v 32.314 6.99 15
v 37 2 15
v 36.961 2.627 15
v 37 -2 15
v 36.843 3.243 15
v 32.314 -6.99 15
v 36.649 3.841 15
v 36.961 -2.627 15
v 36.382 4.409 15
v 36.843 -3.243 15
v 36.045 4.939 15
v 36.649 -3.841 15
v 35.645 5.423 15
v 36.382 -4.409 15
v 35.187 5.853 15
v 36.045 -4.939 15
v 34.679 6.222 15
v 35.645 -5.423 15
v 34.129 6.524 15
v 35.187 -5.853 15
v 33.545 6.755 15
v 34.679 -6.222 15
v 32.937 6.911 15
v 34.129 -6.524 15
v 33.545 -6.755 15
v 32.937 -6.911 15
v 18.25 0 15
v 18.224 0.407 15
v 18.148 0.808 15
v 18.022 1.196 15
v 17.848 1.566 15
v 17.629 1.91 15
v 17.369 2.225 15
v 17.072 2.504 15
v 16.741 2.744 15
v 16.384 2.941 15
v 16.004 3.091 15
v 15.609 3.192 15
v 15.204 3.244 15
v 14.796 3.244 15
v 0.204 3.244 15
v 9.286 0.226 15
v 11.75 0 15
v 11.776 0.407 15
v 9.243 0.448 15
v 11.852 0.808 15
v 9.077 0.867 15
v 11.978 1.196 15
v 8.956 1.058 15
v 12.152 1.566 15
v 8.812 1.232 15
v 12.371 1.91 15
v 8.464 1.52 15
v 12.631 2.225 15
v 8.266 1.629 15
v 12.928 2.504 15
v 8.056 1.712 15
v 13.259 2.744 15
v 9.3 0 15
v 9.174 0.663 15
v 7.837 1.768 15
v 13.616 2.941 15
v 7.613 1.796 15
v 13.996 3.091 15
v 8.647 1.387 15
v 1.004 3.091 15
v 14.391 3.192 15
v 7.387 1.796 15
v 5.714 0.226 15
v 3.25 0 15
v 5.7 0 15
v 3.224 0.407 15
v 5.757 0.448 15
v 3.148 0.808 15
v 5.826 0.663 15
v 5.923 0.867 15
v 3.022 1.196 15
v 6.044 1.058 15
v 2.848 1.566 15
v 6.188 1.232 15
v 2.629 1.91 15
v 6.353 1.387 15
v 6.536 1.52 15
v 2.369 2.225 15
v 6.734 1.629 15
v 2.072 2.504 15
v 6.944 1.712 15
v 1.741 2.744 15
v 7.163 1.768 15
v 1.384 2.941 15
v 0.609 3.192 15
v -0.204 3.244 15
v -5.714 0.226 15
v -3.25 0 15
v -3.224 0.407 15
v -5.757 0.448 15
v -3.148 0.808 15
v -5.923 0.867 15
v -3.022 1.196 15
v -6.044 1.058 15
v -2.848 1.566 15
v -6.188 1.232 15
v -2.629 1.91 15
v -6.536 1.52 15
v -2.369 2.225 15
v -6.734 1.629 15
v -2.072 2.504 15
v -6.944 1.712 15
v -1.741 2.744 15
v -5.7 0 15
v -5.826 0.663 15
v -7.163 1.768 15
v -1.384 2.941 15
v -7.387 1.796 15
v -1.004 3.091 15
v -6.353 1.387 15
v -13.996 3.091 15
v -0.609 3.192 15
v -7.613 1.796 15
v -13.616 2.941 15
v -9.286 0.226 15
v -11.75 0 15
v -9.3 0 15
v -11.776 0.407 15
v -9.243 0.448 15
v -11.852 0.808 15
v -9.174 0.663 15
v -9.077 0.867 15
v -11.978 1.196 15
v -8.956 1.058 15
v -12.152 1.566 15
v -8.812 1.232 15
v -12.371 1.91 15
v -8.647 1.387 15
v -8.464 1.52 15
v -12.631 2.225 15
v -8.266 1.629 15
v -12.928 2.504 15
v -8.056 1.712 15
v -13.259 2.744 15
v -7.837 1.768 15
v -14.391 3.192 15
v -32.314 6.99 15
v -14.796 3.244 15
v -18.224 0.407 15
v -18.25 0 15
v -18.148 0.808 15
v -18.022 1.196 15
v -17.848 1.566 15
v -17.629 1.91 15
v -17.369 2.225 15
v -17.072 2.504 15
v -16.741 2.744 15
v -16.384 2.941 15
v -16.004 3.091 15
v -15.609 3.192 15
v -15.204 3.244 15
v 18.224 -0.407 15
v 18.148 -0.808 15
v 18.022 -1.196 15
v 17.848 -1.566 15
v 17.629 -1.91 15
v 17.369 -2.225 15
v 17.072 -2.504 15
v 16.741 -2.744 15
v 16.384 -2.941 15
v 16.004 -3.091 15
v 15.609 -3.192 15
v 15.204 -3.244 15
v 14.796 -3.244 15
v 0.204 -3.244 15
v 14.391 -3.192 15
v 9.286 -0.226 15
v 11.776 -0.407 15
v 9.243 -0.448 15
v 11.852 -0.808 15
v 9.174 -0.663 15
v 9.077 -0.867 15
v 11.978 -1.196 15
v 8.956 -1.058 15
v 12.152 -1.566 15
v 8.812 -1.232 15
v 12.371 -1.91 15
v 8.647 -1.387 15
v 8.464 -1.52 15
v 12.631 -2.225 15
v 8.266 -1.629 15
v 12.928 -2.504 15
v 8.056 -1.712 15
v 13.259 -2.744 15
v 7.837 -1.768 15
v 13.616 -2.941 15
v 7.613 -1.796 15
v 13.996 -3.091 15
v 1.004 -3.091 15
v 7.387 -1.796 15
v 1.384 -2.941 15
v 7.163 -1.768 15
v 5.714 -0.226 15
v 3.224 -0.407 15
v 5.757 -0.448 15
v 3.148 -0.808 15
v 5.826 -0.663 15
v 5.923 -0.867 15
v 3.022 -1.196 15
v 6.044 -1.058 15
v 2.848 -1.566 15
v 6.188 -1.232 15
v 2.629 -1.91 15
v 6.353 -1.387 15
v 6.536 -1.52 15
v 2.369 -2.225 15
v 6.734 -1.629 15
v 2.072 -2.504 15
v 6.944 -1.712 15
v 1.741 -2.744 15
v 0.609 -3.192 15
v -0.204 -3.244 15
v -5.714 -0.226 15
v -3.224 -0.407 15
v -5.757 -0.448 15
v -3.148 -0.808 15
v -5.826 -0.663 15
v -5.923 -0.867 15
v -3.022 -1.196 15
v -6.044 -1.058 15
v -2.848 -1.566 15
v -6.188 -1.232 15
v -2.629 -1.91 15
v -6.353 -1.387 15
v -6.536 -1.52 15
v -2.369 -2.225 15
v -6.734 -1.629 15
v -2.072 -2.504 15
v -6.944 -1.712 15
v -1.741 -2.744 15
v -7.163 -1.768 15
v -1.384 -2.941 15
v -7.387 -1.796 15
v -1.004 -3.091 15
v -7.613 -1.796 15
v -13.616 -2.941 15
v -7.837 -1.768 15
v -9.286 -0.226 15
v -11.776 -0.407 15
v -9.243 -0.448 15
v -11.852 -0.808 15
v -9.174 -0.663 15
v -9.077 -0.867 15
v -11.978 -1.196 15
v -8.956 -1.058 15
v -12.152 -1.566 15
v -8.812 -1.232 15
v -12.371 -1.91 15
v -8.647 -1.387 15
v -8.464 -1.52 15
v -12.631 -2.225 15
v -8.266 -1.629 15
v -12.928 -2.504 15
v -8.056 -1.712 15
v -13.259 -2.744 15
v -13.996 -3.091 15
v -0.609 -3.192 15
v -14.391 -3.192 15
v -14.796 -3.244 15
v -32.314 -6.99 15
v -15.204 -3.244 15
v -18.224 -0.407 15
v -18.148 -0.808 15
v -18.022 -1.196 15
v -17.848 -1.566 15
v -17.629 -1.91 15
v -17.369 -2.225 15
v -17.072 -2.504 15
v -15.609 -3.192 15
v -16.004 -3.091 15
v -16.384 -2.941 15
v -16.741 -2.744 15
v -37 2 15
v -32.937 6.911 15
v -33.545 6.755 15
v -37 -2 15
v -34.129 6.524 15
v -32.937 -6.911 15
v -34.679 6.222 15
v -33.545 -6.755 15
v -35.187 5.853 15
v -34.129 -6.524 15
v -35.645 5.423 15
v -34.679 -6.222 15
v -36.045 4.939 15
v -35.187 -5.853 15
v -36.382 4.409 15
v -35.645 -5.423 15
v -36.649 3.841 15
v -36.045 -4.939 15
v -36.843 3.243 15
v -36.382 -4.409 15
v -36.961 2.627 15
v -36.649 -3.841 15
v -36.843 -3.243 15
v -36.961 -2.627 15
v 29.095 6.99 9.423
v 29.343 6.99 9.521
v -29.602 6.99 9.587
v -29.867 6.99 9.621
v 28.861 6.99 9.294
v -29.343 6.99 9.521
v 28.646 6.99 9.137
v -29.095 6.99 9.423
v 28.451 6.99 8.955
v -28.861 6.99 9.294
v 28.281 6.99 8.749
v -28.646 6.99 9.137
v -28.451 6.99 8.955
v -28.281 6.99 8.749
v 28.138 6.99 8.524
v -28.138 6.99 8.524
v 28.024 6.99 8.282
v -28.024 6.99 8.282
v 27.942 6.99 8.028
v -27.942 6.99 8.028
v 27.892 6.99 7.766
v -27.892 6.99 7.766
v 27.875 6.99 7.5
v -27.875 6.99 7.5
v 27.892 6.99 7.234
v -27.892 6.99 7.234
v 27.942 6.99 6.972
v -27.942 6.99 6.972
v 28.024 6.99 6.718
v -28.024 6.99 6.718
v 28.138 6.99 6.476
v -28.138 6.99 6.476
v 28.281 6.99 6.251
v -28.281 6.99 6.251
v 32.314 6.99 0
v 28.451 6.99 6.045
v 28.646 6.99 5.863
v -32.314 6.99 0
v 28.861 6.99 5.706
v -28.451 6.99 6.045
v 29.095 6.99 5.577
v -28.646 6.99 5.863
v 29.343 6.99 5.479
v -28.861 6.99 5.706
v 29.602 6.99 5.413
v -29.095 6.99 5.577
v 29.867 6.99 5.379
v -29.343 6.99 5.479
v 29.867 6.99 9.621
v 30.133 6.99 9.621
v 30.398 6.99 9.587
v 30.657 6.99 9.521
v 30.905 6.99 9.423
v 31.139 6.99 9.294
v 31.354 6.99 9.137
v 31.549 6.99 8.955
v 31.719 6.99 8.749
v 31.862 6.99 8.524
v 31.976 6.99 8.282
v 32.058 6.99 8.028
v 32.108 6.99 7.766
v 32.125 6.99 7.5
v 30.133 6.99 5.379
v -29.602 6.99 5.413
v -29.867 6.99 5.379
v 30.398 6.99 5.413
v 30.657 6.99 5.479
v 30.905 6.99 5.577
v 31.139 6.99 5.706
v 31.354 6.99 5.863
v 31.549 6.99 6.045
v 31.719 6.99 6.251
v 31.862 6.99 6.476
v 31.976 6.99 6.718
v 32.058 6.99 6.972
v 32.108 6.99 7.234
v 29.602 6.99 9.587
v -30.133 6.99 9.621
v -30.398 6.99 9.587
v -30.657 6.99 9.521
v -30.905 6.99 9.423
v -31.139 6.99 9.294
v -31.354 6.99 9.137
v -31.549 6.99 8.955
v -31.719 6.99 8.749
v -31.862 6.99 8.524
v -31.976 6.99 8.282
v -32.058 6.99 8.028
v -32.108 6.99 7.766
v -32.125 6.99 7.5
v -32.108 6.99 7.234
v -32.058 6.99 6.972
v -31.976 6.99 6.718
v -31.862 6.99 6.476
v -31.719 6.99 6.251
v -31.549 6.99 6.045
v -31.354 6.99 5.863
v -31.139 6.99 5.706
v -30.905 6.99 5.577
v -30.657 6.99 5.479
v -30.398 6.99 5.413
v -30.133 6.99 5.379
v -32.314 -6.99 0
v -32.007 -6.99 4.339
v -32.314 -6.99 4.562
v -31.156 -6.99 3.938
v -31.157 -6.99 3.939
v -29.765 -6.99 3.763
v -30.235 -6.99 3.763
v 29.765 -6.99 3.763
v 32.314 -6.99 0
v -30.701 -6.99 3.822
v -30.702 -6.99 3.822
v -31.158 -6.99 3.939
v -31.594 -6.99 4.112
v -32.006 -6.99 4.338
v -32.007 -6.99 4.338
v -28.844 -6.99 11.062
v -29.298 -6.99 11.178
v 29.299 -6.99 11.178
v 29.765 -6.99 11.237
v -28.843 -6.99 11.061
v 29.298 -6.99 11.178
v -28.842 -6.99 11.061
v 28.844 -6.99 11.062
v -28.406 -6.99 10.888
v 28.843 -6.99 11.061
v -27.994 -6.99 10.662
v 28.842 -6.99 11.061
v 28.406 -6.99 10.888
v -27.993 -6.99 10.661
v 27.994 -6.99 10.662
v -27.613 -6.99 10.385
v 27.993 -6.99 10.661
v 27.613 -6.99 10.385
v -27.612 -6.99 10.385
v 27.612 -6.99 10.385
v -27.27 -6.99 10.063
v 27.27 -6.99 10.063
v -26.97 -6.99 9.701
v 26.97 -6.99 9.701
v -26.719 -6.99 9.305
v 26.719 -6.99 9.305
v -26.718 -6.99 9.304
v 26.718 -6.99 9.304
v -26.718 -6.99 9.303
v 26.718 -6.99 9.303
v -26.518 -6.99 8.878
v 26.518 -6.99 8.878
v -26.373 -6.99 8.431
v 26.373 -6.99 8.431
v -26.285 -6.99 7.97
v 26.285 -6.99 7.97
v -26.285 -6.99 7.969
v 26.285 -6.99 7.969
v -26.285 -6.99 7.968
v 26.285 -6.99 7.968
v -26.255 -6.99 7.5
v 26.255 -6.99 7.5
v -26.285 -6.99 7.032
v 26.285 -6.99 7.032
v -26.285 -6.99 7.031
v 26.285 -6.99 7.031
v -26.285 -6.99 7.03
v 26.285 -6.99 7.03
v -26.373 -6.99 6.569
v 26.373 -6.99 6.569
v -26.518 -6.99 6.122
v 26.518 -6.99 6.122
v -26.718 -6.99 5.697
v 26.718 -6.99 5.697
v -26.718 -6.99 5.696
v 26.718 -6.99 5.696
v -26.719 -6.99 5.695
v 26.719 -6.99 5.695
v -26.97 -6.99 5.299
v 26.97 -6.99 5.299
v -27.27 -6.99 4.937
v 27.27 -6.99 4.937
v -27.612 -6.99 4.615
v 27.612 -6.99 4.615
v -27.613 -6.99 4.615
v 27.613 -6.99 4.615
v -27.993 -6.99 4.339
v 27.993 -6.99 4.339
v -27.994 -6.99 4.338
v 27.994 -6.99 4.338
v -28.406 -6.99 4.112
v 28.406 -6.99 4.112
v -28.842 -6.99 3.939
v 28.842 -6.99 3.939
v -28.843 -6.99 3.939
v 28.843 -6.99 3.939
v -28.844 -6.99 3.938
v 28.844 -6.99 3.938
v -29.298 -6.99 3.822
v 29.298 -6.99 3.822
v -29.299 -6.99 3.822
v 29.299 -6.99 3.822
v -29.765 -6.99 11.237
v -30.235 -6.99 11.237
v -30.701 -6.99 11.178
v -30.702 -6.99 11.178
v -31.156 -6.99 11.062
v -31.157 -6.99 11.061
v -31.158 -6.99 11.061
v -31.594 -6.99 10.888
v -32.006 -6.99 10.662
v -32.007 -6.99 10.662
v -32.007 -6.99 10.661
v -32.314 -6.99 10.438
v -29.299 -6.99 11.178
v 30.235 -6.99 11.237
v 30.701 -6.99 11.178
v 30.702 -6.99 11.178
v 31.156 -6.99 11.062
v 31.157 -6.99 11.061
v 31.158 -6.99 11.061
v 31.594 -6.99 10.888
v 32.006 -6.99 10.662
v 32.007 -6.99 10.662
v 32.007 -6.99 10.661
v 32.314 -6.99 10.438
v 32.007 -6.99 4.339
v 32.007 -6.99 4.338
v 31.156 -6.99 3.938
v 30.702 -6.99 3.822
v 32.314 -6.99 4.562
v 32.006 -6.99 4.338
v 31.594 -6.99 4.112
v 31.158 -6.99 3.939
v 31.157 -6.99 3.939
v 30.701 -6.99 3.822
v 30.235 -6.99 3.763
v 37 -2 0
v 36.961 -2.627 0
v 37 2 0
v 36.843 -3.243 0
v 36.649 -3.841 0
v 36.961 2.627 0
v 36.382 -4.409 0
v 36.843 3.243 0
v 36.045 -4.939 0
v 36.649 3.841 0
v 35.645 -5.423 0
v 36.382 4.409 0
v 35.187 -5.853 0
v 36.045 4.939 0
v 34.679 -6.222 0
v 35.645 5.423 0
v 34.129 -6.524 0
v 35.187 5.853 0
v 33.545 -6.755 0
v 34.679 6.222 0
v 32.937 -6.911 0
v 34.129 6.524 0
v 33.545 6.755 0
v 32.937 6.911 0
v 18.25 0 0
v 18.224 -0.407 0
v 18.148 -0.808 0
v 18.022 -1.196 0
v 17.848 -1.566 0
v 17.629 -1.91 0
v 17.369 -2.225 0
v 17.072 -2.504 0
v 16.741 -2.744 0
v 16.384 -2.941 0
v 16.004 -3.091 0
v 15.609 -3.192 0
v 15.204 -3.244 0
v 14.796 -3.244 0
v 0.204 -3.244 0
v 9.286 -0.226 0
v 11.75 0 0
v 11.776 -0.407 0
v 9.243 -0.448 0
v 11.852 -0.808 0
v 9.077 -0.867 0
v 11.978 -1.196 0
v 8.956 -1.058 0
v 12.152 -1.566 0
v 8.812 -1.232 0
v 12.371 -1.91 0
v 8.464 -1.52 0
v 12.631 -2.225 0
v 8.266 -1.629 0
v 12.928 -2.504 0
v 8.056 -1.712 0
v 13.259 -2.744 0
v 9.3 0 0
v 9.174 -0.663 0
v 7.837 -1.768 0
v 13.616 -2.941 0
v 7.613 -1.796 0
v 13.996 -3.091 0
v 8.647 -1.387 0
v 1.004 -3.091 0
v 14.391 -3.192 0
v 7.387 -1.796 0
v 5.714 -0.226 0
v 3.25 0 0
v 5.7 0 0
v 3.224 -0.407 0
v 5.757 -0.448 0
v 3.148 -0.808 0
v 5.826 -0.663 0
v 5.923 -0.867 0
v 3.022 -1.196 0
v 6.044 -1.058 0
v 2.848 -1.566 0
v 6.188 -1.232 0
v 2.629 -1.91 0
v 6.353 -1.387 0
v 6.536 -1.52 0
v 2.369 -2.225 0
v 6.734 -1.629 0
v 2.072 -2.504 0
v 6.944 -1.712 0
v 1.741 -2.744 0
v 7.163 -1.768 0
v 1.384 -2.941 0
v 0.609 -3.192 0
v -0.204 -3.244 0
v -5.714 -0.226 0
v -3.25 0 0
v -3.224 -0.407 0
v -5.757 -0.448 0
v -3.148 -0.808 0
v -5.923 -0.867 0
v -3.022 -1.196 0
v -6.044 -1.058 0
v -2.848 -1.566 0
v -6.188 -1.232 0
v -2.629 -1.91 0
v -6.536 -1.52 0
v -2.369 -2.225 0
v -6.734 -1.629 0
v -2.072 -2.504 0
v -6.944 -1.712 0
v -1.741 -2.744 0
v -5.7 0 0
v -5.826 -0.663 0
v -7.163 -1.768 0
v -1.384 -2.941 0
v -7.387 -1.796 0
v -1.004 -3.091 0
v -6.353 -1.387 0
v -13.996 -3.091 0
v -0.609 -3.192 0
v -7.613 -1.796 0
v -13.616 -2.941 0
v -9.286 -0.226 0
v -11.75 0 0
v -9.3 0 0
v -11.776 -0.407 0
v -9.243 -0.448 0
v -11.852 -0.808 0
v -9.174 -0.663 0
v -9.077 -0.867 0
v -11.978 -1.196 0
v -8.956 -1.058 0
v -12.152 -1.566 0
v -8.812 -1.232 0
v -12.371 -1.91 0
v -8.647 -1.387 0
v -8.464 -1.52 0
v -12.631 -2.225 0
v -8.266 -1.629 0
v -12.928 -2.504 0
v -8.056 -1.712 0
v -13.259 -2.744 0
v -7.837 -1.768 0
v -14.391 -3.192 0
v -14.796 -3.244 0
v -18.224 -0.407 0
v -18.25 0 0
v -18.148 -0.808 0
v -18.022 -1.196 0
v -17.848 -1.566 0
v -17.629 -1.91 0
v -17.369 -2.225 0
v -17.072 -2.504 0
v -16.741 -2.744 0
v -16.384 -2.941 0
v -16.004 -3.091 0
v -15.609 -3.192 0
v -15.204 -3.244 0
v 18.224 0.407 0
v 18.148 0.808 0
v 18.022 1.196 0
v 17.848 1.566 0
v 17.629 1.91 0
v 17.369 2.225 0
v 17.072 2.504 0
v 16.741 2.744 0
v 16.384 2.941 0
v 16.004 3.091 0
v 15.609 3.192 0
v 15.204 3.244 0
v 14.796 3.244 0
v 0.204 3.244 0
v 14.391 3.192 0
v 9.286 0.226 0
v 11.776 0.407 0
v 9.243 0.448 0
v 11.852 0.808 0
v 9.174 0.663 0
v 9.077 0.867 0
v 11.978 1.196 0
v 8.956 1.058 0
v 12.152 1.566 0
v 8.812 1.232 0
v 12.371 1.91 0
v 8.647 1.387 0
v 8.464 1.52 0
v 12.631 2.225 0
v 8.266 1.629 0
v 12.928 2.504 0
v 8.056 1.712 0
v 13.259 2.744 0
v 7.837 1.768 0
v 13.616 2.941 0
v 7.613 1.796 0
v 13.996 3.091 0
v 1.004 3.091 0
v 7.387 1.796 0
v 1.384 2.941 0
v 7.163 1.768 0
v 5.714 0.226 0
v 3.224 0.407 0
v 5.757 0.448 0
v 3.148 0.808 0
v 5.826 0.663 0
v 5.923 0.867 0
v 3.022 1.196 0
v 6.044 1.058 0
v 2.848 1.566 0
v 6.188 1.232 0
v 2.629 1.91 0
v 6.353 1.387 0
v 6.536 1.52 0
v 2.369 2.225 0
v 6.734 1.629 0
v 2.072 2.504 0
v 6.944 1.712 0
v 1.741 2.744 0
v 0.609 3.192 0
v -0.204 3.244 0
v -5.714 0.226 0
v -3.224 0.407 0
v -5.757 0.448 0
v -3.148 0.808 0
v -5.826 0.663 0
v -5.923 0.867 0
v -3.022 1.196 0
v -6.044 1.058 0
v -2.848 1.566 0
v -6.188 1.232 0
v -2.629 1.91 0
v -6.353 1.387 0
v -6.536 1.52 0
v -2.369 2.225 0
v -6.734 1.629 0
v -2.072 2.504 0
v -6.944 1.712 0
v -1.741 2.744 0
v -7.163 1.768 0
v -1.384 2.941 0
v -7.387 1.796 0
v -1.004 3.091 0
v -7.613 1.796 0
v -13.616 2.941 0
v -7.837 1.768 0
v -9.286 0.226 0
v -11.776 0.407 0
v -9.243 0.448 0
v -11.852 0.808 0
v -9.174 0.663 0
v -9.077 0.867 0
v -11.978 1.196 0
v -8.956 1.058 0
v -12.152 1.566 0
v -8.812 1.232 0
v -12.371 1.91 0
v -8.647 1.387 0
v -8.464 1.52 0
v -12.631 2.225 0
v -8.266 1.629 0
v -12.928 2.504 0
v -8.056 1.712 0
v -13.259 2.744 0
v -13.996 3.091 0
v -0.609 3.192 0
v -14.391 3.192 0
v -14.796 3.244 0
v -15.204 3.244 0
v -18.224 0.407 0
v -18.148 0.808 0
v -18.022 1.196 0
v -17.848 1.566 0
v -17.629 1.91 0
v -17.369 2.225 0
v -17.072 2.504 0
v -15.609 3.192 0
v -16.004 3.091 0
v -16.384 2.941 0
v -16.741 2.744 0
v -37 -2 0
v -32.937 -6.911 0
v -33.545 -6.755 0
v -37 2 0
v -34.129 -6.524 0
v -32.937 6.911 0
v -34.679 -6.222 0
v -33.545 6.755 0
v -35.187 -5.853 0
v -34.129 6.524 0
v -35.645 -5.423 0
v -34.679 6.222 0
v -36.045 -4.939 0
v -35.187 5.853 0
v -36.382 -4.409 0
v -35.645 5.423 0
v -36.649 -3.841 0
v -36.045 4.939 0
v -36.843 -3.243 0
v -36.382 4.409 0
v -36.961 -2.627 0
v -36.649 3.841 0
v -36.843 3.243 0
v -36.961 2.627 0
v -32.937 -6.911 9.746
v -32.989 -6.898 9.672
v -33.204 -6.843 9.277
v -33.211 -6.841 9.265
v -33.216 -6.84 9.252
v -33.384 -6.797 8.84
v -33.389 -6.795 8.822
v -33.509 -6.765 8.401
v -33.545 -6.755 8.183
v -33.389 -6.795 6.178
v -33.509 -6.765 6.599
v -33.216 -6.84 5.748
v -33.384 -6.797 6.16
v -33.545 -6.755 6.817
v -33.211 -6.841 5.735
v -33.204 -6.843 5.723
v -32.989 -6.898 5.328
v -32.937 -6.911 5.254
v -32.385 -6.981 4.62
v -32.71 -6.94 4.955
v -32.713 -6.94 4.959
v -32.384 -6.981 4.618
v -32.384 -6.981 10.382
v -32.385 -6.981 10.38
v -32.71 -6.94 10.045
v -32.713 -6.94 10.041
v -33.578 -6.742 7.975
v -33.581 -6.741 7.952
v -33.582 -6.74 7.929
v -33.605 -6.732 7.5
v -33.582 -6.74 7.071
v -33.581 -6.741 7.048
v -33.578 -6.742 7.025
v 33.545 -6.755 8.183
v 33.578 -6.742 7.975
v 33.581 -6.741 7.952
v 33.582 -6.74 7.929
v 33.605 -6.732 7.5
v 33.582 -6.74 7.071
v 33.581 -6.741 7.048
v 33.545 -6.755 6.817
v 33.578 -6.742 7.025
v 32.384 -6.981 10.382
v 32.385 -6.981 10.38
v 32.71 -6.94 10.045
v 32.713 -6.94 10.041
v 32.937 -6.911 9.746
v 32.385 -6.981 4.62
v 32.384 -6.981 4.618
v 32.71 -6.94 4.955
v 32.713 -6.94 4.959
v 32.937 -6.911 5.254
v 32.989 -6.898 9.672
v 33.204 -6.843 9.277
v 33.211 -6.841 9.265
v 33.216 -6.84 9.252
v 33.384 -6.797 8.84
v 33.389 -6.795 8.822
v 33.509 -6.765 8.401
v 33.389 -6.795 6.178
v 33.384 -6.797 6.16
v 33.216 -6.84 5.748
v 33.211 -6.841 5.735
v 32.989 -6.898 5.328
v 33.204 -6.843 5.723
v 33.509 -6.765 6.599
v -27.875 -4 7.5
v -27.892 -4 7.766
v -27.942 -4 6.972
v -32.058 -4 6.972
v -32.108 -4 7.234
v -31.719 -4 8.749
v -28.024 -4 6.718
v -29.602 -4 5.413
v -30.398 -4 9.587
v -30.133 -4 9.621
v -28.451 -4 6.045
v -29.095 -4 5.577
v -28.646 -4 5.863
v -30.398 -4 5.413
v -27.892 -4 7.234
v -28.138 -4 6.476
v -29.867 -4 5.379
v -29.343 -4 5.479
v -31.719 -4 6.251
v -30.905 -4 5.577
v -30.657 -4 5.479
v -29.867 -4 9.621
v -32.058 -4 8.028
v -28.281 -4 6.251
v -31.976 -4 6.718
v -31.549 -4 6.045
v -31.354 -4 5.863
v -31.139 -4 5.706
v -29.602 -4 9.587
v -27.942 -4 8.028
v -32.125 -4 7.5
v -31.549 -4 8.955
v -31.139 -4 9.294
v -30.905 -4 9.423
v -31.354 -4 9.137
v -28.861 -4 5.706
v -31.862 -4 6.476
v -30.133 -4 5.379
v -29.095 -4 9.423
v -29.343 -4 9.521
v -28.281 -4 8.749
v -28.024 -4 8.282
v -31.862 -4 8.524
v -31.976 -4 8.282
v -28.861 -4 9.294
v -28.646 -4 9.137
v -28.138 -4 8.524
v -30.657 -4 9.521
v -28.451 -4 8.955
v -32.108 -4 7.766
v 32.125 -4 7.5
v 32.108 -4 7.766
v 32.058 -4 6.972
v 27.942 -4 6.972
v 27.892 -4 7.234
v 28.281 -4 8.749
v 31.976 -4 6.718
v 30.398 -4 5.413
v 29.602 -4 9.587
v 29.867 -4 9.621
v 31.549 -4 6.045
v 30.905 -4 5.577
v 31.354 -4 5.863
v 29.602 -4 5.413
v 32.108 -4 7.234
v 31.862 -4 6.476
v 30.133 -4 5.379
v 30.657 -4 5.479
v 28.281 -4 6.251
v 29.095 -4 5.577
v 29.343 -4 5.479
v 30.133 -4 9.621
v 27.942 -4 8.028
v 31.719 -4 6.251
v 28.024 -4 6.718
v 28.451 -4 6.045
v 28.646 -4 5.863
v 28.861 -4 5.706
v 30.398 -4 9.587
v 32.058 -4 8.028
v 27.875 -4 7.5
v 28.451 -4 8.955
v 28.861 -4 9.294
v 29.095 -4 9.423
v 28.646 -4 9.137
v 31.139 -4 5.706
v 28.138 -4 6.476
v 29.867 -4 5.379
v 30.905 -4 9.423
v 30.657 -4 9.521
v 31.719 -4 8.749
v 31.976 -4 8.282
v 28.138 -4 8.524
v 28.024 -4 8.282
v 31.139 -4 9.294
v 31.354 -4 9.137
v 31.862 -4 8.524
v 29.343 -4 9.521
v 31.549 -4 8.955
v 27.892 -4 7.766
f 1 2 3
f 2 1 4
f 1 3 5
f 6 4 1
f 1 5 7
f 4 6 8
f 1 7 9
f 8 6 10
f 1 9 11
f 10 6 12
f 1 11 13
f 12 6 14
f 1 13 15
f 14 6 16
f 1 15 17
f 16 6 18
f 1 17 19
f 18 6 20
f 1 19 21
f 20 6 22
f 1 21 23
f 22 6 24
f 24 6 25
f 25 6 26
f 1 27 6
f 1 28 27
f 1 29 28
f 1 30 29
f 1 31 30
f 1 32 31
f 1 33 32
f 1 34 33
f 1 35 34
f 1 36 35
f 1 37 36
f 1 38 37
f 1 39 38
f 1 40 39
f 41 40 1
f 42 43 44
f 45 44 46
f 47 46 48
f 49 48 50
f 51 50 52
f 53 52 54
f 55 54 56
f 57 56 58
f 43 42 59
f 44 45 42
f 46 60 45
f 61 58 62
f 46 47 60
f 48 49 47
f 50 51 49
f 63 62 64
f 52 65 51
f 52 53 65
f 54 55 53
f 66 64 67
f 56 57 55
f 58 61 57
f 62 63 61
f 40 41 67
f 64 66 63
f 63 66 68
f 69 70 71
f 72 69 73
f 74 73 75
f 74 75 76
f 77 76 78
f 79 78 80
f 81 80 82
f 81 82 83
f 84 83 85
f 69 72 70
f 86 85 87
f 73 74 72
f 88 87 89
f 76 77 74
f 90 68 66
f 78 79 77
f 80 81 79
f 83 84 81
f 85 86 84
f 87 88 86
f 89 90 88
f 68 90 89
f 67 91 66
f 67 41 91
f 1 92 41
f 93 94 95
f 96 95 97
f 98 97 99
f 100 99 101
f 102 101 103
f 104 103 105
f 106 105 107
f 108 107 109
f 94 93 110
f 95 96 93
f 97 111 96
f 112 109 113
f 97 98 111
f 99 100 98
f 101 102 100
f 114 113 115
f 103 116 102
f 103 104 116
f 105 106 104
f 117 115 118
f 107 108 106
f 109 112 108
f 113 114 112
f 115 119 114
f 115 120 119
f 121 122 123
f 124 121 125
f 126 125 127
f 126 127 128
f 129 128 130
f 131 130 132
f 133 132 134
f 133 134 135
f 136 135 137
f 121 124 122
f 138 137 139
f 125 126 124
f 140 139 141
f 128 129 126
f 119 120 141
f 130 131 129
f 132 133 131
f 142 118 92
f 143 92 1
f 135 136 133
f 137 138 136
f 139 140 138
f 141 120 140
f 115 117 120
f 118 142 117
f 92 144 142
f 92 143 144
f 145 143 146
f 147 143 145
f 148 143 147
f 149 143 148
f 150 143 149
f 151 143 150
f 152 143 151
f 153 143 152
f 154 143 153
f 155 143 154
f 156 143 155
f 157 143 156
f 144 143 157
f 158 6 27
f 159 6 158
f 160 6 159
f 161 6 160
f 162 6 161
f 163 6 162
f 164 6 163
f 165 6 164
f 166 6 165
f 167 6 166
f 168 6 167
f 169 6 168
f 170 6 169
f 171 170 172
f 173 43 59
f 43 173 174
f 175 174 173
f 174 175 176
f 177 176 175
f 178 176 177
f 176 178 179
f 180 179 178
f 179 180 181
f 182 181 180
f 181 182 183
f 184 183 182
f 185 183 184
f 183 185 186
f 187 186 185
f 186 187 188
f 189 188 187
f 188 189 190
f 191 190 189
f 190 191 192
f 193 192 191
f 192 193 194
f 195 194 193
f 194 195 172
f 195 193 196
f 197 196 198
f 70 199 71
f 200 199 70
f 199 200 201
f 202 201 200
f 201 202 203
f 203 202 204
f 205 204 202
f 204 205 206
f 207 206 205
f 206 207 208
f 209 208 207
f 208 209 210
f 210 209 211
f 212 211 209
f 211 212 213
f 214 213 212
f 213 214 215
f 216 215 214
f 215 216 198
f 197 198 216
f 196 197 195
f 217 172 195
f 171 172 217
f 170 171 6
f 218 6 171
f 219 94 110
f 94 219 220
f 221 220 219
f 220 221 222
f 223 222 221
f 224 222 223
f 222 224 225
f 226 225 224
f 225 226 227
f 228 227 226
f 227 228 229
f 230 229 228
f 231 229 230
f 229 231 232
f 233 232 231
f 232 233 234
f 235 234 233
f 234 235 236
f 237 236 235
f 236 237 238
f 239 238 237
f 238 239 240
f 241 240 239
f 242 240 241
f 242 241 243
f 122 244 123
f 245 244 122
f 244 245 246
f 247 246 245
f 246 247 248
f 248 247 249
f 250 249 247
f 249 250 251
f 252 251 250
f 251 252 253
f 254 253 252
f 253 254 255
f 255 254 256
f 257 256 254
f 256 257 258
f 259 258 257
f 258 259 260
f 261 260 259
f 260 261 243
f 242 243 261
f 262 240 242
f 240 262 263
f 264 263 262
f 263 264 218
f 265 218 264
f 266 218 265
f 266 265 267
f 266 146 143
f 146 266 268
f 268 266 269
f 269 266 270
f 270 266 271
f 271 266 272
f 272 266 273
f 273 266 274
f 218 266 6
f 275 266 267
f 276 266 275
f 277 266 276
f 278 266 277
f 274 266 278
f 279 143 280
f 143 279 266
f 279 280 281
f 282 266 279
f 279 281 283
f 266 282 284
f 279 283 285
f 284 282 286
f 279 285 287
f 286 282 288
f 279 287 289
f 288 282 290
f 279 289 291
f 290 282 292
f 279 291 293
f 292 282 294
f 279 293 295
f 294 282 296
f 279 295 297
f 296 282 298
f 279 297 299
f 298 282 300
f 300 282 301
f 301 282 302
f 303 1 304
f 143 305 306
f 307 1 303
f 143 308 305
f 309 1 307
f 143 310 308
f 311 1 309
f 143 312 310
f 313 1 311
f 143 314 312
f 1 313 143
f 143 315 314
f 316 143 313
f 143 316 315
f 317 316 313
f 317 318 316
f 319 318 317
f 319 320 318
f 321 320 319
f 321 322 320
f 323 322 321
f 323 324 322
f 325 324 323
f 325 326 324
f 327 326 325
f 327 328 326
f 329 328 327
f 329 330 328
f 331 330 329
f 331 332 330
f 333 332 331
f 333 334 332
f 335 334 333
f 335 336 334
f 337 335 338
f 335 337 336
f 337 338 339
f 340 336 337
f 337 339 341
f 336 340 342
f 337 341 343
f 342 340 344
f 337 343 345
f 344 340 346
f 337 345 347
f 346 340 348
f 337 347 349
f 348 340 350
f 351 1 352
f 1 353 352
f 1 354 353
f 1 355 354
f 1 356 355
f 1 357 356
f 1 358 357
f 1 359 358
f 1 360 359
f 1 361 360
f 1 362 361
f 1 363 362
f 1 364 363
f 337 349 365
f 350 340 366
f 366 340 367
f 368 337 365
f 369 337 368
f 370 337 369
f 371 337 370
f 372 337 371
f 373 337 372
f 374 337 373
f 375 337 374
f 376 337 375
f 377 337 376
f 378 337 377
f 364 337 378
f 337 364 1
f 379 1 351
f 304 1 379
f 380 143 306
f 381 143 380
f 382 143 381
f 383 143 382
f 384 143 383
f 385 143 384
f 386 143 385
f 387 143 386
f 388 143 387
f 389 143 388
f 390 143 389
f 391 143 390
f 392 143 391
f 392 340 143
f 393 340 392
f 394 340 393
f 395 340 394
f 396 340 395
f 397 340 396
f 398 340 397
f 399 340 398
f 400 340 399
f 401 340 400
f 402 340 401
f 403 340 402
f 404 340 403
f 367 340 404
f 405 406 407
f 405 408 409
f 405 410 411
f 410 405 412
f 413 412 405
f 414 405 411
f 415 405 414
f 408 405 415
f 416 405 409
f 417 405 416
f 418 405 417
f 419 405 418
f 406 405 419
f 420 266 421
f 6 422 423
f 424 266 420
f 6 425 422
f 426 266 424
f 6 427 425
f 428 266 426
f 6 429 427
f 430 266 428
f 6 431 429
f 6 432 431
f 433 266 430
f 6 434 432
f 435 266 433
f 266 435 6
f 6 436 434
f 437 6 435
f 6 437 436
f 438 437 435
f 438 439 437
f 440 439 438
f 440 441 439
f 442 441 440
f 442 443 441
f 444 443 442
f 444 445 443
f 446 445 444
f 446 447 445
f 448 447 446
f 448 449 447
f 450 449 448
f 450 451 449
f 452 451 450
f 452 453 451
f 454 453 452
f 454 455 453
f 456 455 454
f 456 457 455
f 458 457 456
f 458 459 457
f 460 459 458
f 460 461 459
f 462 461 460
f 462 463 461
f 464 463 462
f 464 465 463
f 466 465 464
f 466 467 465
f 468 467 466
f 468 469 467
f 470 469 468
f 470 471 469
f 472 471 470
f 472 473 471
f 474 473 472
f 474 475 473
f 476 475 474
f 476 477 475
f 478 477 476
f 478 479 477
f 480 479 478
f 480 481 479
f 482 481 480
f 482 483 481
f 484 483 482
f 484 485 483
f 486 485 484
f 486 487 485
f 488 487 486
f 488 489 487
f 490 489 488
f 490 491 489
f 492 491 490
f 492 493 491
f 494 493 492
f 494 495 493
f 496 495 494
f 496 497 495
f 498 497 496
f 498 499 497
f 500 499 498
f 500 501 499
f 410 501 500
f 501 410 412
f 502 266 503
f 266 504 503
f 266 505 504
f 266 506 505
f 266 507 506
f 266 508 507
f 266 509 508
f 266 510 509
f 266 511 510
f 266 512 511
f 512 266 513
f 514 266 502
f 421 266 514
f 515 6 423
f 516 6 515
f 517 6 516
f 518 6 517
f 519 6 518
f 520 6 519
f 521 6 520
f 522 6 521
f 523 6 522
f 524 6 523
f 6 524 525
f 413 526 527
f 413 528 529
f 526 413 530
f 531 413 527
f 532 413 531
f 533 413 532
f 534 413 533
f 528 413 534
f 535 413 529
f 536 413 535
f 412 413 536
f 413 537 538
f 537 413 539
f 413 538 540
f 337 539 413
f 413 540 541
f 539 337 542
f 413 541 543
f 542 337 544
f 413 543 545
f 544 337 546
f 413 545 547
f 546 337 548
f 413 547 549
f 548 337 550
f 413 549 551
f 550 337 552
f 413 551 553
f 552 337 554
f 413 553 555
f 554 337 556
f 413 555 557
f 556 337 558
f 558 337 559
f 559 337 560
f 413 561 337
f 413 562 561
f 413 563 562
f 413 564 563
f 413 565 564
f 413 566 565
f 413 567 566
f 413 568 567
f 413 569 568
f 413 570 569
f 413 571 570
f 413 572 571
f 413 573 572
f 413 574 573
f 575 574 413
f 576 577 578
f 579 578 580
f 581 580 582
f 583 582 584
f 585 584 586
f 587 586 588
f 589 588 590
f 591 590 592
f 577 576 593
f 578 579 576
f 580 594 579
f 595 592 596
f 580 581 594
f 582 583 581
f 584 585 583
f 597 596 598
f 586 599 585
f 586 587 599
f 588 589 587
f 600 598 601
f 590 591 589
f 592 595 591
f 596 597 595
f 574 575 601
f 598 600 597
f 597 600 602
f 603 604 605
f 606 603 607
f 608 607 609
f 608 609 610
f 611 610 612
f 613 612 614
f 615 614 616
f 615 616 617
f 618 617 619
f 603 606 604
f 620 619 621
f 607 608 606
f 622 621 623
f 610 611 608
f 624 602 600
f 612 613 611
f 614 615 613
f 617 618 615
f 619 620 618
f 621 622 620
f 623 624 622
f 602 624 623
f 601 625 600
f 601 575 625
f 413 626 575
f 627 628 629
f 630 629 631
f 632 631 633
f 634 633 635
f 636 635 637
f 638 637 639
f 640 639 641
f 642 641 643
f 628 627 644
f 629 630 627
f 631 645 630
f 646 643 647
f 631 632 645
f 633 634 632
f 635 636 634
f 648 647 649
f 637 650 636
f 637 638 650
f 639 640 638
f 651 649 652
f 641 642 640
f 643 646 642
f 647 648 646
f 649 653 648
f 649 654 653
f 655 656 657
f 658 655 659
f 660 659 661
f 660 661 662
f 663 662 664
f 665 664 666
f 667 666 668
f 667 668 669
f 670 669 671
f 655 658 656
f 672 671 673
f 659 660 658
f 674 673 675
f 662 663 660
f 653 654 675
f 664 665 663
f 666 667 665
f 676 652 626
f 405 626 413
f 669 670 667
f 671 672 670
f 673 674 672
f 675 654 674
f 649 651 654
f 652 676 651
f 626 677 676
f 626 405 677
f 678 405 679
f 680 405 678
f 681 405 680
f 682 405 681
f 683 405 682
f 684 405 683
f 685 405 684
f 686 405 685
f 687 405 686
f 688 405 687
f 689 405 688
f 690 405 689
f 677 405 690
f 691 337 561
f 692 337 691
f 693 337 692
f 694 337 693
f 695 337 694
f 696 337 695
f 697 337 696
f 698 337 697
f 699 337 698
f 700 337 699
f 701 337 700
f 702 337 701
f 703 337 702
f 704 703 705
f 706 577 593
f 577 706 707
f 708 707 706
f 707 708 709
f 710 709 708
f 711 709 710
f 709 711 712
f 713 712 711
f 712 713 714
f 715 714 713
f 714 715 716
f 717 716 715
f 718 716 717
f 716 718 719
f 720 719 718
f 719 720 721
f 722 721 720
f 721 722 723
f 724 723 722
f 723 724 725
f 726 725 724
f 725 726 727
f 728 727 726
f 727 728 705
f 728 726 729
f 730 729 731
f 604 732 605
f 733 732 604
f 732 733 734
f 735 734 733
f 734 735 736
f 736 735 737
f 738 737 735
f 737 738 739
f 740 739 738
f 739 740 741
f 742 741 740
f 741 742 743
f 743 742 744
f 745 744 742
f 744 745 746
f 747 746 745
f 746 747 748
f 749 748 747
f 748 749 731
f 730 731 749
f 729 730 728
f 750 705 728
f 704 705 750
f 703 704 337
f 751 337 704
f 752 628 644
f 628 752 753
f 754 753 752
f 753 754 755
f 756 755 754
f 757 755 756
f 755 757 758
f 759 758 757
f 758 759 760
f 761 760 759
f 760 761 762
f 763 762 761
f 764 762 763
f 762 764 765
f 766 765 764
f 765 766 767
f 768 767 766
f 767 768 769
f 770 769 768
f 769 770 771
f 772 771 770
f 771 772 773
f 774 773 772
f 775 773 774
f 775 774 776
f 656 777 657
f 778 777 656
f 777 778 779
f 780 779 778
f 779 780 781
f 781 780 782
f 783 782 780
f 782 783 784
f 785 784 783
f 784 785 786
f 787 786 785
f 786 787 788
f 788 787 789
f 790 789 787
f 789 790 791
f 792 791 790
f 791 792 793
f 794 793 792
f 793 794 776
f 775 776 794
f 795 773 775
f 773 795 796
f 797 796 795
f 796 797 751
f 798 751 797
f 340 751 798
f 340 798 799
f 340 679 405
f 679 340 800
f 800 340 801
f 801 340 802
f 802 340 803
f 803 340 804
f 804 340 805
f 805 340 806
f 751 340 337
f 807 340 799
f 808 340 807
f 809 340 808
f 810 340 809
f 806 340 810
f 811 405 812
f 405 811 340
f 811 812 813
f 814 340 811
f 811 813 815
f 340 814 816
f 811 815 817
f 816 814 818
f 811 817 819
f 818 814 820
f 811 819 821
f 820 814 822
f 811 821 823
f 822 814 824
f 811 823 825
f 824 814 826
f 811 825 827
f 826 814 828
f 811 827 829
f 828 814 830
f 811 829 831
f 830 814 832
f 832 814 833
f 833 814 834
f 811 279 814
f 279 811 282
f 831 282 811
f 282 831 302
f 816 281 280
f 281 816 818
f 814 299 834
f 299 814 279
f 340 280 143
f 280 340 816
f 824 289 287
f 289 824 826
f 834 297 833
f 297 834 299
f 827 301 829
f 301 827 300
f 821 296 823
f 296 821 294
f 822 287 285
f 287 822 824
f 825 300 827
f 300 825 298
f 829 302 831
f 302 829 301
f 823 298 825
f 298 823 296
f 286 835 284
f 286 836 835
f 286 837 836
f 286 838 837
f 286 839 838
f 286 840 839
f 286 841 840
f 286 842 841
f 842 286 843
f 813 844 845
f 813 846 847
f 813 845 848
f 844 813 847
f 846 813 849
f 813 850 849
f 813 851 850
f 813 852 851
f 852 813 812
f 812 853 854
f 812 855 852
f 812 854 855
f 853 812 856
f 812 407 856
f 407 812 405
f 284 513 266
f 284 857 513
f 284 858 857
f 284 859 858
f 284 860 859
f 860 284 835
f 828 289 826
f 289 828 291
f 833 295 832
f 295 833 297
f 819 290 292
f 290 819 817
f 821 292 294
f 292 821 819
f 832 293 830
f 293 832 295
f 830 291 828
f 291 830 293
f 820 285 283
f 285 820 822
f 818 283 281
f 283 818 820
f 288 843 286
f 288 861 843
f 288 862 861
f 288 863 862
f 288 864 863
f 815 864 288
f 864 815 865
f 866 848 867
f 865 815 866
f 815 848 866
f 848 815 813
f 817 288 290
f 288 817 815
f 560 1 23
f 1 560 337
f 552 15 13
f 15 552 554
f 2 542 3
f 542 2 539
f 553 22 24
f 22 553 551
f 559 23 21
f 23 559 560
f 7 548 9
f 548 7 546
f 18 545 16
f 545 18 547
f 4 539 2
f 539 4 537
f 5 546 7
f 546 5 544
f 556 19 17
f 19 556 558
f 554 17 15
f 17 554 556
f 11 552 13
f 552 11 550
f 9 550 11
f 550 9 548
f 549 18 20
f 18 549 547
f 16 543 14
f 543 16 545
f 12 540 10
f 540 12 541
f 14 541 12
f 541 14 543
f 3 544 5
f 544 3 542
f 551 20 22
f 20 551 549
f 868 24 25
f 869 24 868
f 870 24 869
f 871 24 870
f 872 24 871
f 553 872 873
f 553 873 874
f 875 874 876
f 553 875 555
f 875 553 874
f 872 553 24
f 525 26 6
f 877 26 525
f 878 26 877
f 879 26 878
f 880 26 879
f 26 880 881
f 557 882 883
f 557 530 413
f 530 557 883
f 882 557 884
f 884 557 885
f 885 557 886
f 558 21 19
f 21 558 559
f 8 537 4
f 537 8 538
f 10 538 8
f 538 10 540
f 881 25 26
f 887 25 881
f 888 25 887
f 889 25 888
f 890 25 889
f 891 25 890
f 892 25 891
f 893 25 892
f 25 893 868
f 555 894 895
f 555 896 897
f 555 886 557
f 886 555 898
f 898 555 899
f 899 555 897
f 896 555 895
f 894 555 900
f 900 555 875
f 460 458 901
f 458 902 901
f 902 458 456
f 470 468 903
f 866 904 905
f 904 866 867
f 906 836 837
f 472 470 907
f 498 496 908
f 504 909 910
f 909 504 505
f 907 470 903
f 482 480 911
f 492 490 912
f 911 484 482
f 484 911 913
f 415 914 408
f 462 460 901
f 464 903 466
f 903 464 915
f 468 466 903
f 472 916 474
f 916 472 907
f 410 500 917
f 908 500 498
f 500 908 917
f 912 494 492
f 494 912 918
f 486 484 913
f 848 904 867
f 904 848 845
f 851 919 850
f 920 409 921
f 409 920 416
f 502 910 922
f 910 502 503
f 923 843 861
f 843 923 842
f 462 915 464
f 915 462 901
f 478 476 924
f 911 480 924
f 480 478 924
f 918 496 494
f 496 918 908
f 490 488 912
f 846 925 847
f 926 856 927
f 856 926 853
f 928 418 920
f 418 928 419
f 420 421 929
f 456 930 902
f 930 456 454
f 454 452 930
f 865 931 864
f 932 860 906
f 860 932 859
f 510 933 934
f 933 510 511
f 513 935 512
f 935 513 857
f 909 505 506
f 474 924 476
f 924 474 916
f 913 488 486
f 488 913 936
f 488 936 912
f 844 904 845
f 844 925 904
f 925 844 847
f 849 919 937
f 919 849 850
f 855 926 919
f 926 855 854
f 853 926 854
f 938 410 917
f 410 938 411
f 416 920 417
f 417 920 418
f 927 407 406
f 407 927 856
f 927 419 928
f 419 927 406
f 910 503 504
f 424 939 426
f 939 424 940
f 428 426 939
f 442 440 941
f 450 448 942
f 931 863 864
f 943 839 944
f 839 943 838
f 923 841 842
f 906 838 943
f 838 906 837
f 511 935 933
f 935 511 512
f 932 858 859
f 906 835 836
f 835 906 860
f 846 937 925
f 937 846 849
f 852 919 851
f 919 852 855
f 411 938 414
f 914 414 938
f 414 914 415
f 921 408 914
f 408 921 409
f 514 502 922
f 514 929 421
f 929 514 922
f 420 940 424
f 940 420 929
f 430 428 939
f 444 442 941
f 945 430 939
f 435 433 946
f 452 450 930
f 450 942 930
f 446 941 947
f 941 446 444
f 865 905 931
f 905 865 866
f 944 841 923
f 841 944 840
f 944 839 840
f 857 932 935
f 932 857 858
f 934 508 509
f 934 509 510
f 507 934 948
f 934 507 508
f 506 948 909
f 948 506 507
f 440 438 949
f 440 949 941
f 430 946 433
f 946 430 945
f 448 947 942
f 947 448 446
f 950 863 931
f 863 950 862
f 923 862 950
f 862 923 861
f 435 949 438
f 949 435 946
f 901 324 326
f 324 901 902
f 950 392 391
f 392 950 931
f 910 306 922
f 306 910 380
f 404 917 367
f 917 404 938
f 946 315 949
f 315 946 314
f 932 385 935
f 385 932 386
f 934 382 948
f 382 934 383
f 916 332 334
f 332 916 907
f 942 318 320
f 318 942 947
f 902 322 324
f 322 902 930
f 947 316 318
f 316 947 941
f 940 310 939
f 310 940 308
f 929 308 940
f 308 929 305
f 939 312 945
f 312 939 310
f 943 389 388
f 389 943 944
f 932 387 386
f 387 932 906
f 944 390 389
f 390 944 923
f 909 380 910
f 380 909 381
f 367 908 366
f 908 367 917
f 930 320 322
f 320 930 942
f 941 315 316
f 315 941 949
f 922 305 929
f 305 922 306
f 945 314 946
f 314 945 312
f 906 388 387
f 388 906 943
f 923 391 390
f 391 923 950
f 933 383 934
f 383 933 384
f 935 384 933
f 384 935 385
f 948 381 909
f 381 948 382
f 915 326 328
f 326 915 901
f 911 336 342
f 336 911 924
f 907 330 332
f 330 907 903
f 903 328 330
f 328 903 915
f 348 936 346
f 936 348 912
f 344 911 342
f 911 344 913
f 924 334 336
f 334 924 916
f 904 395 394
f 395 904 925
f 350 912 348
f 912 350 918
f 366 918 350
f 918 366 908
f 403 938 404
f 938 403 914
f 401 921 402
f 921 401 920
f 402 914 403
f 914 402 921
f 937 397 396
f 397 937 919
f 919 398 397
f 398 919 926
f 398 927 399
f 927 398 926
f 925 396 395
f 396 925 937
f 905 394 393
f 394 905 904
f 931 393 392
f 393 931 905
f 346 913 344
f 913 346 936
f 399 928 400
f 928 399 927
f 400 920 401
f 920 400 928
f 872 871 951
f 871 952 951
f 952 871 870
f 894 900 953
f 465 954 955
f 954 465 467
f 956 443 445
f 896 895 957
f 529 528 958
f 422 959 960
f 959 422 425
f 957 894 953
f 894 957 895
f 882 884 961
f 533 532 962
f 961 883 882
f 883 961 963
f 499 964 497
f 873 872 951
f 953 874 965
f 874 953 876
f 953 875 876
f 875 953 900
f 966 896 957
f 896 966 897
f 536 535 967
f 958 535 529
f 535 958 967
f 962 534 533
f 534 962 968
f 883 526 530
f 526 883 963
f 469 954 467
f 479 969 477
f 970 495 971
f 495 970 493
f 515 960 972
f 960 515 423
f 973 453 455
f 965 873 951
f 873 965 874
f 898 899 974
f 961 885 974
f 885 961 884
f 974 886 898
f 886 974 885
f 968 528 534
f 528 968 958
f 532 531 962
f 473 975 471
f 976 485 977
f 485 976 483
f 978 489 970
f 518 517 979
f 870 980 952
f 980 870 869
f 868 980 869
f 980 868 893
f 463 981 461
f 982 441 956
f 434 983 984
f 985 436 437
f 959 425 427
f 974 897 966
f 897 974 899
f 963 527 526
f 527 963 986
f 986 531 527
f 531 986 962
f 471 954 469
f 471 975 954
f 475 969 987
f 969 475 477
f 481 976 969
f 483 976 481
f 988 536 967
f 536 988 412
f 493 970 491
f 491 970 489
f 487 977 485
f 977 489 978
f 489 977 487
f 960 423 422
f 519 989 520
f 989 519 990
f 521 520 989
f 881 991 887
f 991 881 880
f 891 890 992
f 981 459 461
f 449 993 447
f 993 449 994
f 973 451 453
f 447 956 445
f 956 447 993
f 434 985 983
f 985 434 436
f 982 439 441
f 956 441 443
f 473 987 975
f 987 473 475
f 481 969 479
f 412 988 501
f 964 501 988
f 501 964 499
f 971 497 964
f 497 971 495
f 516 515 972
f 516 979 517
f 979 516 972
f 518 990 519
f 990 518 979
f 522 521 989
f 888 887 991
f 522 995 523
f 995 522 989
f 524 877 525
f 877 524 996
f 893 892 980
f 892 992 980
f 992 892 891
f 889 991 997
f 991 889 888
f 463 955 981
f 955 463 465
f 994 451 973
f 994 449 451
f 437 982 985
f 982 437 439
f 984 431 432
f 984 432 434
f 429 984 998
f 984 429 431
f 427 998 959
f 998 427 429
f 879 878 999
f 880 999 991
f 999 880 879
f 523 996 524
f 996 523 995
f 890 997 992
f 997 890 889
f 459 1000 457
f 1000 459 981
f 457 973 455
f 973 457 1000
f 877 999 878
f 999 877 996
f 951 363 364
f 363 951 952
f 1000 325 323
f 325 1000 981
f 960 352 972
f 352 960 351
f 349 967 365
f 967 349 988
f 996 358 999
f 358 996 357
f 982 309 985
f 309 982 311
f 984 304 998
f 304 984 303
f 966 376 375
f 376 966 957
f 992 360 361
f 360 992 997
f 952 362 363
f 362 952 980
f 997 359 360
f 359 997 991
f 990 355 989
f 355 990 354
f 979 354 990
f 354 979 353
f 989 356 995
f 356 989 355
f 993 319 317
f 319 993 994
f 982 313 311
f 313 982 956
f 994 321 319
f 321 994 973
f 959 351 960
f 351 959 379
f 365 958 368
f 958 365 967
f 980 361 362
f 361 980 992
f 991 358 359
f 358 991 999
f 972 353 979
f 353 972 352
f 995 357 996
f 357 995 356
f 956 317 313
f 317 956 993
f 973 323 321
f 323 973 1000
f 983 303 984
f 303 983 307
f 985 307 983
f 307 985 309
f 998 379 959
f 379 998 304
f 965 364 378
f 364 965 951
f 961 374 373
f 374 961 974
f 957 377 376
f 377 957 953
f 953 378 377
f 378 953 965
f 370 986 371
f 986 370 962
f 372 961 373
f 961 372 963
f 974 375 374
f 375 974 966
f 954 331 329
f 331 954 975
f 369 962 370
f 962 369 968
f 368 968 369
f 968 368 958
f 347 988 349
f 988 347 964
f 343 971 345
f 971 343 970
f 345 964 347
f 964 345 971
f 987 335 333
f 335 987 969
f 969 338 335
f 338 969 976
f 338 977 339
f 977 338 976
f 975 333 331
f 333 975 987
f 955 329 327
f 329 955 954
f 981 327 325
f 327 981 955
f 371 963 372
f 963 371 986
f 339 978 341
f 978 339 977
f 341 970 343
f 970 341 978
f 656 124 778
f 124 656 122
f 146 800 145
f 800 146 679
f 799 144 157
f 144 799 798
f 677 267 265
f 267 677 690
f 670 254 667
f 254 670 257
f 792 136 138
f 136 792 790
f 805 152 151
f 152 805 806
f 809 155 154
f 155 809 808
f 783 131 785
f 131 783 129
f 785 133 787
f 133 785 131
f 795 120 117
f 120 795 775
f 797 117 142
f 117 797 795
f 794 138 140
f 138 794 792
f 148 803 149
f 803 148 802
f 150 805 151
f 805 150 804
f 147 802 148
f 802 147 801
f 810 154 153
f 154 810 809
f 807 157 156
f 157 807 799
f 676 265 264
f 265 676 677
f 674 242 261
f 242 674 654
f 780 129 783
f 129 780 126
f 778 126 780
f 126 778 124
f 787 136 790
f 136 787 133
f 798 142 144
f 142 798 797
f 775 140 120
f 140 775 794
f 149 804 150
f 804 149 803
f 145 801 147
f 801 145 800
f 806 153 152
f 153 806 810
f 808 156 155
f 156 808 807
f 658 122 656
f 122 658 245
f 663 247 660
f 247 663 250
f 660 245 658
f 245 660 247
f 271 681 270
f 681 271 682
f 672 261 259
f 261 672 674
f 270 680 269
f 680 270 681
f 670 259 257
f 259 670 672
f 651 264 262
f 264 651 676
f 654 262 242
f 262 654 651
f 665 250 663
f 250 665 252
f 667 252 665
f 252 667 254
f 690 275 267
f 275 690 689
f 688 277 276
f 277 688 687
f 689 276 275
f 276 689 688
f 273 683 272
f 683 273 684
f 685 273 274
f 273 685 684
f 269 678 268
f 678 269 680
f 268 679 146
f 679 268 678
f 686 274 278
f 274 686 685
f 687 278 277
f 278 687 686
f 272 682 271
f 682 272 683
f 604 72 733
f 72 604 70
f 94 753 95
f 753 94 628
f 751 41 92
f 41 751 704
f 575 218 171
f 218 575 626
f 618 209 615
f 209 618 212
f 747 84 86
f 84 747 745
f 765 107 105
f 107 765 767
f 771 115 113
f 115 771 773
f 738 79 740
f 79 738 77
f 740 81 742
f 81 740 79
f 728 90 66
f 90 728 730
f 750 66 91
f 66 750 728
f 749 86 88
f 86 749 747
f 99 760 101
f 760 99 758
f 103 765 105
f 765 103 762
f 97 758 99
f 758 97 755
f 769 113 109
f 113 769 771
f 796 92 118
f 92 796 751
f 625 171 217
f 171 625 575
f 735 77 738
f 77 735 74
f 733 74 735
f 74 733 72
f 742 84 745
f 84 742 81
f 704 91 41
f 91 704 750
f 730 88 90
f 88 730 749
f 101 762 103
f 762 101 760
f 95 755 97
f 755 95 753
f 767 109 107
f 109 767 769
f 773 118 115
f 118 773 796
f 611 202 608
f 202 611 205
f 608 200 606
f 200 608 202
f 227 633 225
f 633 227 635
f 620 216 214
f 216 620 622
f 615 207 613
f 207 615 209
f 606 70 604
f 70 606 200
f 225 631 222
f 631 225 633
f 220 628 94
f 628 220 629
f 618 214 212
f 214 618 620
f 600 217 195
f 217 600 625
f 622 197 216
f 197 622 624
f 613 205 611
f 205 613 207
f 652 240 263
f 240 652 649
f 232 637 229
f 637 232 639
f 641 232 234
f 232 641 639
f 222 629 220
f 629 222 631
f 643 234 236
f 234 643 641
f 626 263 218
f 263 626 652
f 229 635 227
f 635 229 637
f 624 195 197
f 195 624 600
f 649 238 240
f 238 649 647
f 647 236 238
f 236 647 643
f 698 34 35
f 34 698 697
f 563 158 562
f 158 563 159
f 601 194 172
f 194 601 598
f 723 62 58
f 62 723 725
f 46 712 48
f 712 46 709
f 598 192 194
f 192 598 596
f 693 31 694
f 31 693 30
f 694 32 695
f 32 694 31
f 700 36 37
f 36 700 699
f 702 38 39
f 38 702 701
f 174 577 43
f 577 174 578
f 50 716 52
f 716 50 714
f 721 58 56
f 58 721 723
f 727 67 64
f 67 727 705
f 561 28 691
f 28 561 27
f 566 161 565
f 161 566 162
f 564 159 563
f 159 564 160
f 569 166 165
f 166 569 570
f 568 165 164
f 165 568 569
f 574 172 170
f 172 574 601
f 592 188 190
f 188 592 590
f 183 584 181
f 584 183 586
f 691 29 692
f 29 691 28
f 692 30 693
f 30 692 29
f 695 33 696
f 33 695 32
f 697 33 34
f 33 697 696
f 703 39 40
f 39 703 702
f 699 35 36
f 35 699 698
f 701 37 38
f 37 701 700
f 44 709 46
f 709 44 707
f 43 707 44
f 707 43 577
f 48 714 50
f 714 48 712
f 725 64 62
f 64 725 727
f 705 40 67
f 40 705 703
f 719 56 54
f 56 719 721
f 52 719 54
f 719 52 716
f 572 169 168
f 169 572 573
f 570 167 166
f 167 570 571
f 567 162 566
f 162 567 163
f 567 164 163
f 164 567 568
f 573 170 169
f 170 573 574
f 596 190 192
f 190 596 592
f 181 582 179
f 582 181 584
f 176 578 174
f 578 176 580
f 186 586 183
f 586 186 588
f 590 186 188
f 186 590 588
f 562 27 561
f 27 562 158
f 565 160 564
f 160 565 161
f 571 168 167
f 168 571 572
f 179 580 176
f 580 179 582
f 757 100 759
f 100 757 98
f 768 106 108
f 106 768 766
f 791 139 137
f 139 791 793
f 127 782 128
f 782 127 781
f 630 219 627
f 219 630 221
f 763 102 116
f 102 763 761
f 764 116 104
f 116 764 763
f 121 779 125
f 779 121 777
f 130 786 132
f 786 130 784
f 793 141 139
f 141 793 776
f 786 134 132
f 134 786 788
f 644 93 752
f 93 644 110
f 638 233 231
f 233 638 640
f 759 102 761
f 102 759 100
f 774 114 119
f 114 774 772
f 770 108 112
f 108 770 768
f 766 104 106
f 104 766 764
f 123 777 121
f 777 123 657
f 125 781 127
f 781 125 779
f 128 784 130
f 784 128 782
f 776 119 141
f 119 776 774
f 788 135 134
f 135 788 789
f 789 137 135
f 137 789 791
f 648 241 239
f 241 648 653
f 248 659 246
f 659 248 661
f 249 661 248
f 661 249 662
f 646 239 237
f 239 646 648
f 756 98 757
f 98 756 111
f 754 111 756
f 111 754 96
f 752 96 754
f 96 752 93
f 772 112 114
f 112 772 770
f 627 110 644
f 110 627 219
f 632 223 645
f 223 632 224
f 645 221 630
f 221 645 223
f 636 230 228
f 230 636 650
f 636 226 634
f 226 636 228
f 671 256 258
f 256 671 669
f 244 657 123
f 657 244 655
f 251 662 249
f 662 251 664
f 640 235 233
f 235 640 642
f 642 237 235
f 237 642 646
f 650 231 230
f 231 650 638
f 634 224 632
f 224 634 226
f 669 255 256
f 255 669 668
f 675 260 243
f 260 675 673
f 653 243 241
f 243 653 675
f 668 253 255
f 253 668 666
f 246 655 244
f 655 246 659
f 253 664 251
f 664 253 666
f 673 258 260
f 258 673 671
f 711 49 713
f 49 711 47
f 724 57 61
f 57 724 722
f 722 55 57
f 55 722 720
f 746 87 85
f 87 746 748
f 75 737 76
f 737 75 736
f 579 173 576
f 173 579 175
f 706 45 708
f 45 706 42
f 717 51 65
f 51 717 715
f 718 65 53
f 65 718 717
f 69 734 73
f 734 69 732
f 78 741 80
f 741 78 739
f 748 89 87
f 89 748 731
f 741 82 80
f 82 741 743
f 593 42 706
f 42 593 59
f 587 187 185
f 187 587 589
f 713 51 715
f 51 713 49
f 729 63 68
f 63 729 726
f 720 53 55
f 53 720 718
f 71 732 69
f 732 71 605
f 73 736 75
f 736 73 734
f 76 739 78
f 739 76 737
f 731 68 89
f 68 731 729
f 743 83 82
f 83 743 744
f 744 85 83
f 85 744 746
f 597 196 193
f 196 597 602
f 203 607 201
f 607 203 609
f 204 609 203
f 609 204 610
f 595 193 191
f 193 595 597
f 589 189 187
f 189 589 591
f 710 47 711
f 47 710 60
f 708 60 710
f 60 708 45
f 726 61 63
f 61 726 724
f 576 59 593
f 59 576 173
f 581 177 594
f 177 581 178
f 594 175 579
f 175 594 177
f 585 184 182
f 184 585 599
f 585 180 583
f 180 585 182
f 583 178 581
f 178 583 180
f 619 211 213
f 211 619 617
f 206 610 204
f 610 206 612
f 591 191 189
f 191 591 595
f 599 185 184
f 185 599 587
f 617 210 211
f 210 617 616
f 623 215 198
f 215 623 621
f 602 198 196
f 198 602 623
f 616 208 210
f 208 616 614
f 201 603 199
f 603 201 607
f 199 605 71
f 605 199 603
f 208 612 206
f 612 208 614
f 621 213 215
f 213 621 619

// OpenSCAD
$fn = 50;


difference() {
	union() {
		hull() {
			translate(v = [-17.0000000000, 2.0000000000, 0]) {
				cylinder(h = 15, r = 5);
			}
			translate(v = [17.0000000000, 2.0000000000, 0]) {
				cylinder(h = 15, r = 5);
			}
			translate(v = [-17.0000000000, -2.0000000000, 0]) {
				cylinder(h = 15, r = 5);
			}
			translate(v = [17.0000000000, -2.0000000000, 0]) {
				cylinder(h = 15, r = 5);
			}
		}
		translate(v = [-22.5000000000, 0.0000000000, 0]) {
			hull() {
				translate(v = [-9.5000000000, 2.0000000000, 0]) {
					cylinder(h = 15, r = 5);
				}
				translate(v = [9.5000000000, 2.0000000000, 0]) {
					cylinder(h = 15, r = 5);
				}
				translate(v = [-9.5000000000, -2.0000000000, 0]) {
					cylinder(h = 15, r = 5);
				}
				translate(v = [9.5000000000, -2.0000000000, 0]) {
					cylinder(h = 15, r = 5);
				}
			}
		}
		translate(v = [22.5000000000, 0.0000000000, 0]) {
			hull() {
				translate(v = [-9.5000000000, 2.0000000000, 0]) {
					cylinder(h = 15, r = 5);
				}
				translate(v = [9.5000000000, 2.0000000000, 0]) {
					cylinder(h = 15, r = 5);
				}
				translate(v = [-9.5000000000, -2.0000000000, 0]) {
					cylinder(h = 15, r = 5);
				}
				translate(v = [9.5000000000, -2.0000000000, 0]) {
					cylinder(h = 15, r = 5);
				}
			}
		}
	}
	union() {
		translate(v = [-30.0000000000, -7.0000000000, 7.5000000000]) {
			rotate(a = [90, 0, 0]) {
				difference() {
					union() {
						#translate(v = [0, 0, -14.0000000000]) {
							cylinder(h = 14, r = 2.0000000000);
						}
						#translate(v = [0, 0, -3]) {
							cylinder(h = 3, r1 = 2.1250000000, r2 = 3.7500000000);
						}
						#translate(v = [0, 0, -14.0000000000]) {
							cylinder(h = 14, r = 2.1250000000);
						}
						#translate(v = [0, 0, -14.0000000000]) {
							cylinder(h = 14, r = 2.0000000000);
						}
					}
					union();
				}
			}
		}
		translate(v = [30.0000000000, -7.0000000000, 7.5000000000]) {
			rotate(a = [90, 0, 0]) {
				difference() {
					union() {
						#translate(v = [0, 0, -14.0000000000]) {
							cylinder(h = 14, r = 2.0000000000);
						}
						#translate(v = [0, 0, -3]) {
							cylinder(h = 3, r1 = 2.1250000000, r2 = 3.7500000000);
						}
						#translate(v = [0, 0, -14.0000000000]) {
							cylinder(h = 14, r = 2.1250000000);
						}
						#translate(v = [0, 0, -14.0000000000]) {
							cylinder(h = 14, r = 2.0000000000);
						}
					}
					union();
				}
			}
		}
		translate(v = [-15.0000000000, 0.0000000000, 0]) {
			translate(v = [0, 0, -100]) {
				cylinder(h = 200, r = 3.2500000000);
			}
		}
		translate(v = [0, 0, -100]) {
			cylinder(h = 200, r = 3.2500000000);
		}
		translate(v = [15.0000000000, 0.0000000000, 0]) {
			translate(v = [0, 0, -100]) {
				cylinder(h = 200, r = 3.2500000000);
			}
		}
		translate(v = [-15.0000000000, 0.0000000000, 0]) {
			translate(v = [0, 0, -100]) {
				cylinder(h = 200, r = 1.8000000000);
			}
		}
		translate(v = [-7.5000000000, 0.0000000000, 0]) {
			translate(v = [0, 0, -100]) {
				cylinder(h = 200, r = 1.8000000000);
			}
		}
		translate(v = [0, 0, -100]) {
			cylinder(h = 200, r = 1.8000000000);
		}
		translate(v = [7.5000000000, 0.0000000000, 0]) {
			translate(v = [0, 0, -100]) {
				cylinder(h = 200, r = 1.8000000000);
			}
		}
		translate(v = [15.0000000000, 0.0000000000, 0]) {
			translate(v = [0, 0, -100]) {
				cylinder(h = 200, r = 1.8000000000);
			}
		}
	}
}
